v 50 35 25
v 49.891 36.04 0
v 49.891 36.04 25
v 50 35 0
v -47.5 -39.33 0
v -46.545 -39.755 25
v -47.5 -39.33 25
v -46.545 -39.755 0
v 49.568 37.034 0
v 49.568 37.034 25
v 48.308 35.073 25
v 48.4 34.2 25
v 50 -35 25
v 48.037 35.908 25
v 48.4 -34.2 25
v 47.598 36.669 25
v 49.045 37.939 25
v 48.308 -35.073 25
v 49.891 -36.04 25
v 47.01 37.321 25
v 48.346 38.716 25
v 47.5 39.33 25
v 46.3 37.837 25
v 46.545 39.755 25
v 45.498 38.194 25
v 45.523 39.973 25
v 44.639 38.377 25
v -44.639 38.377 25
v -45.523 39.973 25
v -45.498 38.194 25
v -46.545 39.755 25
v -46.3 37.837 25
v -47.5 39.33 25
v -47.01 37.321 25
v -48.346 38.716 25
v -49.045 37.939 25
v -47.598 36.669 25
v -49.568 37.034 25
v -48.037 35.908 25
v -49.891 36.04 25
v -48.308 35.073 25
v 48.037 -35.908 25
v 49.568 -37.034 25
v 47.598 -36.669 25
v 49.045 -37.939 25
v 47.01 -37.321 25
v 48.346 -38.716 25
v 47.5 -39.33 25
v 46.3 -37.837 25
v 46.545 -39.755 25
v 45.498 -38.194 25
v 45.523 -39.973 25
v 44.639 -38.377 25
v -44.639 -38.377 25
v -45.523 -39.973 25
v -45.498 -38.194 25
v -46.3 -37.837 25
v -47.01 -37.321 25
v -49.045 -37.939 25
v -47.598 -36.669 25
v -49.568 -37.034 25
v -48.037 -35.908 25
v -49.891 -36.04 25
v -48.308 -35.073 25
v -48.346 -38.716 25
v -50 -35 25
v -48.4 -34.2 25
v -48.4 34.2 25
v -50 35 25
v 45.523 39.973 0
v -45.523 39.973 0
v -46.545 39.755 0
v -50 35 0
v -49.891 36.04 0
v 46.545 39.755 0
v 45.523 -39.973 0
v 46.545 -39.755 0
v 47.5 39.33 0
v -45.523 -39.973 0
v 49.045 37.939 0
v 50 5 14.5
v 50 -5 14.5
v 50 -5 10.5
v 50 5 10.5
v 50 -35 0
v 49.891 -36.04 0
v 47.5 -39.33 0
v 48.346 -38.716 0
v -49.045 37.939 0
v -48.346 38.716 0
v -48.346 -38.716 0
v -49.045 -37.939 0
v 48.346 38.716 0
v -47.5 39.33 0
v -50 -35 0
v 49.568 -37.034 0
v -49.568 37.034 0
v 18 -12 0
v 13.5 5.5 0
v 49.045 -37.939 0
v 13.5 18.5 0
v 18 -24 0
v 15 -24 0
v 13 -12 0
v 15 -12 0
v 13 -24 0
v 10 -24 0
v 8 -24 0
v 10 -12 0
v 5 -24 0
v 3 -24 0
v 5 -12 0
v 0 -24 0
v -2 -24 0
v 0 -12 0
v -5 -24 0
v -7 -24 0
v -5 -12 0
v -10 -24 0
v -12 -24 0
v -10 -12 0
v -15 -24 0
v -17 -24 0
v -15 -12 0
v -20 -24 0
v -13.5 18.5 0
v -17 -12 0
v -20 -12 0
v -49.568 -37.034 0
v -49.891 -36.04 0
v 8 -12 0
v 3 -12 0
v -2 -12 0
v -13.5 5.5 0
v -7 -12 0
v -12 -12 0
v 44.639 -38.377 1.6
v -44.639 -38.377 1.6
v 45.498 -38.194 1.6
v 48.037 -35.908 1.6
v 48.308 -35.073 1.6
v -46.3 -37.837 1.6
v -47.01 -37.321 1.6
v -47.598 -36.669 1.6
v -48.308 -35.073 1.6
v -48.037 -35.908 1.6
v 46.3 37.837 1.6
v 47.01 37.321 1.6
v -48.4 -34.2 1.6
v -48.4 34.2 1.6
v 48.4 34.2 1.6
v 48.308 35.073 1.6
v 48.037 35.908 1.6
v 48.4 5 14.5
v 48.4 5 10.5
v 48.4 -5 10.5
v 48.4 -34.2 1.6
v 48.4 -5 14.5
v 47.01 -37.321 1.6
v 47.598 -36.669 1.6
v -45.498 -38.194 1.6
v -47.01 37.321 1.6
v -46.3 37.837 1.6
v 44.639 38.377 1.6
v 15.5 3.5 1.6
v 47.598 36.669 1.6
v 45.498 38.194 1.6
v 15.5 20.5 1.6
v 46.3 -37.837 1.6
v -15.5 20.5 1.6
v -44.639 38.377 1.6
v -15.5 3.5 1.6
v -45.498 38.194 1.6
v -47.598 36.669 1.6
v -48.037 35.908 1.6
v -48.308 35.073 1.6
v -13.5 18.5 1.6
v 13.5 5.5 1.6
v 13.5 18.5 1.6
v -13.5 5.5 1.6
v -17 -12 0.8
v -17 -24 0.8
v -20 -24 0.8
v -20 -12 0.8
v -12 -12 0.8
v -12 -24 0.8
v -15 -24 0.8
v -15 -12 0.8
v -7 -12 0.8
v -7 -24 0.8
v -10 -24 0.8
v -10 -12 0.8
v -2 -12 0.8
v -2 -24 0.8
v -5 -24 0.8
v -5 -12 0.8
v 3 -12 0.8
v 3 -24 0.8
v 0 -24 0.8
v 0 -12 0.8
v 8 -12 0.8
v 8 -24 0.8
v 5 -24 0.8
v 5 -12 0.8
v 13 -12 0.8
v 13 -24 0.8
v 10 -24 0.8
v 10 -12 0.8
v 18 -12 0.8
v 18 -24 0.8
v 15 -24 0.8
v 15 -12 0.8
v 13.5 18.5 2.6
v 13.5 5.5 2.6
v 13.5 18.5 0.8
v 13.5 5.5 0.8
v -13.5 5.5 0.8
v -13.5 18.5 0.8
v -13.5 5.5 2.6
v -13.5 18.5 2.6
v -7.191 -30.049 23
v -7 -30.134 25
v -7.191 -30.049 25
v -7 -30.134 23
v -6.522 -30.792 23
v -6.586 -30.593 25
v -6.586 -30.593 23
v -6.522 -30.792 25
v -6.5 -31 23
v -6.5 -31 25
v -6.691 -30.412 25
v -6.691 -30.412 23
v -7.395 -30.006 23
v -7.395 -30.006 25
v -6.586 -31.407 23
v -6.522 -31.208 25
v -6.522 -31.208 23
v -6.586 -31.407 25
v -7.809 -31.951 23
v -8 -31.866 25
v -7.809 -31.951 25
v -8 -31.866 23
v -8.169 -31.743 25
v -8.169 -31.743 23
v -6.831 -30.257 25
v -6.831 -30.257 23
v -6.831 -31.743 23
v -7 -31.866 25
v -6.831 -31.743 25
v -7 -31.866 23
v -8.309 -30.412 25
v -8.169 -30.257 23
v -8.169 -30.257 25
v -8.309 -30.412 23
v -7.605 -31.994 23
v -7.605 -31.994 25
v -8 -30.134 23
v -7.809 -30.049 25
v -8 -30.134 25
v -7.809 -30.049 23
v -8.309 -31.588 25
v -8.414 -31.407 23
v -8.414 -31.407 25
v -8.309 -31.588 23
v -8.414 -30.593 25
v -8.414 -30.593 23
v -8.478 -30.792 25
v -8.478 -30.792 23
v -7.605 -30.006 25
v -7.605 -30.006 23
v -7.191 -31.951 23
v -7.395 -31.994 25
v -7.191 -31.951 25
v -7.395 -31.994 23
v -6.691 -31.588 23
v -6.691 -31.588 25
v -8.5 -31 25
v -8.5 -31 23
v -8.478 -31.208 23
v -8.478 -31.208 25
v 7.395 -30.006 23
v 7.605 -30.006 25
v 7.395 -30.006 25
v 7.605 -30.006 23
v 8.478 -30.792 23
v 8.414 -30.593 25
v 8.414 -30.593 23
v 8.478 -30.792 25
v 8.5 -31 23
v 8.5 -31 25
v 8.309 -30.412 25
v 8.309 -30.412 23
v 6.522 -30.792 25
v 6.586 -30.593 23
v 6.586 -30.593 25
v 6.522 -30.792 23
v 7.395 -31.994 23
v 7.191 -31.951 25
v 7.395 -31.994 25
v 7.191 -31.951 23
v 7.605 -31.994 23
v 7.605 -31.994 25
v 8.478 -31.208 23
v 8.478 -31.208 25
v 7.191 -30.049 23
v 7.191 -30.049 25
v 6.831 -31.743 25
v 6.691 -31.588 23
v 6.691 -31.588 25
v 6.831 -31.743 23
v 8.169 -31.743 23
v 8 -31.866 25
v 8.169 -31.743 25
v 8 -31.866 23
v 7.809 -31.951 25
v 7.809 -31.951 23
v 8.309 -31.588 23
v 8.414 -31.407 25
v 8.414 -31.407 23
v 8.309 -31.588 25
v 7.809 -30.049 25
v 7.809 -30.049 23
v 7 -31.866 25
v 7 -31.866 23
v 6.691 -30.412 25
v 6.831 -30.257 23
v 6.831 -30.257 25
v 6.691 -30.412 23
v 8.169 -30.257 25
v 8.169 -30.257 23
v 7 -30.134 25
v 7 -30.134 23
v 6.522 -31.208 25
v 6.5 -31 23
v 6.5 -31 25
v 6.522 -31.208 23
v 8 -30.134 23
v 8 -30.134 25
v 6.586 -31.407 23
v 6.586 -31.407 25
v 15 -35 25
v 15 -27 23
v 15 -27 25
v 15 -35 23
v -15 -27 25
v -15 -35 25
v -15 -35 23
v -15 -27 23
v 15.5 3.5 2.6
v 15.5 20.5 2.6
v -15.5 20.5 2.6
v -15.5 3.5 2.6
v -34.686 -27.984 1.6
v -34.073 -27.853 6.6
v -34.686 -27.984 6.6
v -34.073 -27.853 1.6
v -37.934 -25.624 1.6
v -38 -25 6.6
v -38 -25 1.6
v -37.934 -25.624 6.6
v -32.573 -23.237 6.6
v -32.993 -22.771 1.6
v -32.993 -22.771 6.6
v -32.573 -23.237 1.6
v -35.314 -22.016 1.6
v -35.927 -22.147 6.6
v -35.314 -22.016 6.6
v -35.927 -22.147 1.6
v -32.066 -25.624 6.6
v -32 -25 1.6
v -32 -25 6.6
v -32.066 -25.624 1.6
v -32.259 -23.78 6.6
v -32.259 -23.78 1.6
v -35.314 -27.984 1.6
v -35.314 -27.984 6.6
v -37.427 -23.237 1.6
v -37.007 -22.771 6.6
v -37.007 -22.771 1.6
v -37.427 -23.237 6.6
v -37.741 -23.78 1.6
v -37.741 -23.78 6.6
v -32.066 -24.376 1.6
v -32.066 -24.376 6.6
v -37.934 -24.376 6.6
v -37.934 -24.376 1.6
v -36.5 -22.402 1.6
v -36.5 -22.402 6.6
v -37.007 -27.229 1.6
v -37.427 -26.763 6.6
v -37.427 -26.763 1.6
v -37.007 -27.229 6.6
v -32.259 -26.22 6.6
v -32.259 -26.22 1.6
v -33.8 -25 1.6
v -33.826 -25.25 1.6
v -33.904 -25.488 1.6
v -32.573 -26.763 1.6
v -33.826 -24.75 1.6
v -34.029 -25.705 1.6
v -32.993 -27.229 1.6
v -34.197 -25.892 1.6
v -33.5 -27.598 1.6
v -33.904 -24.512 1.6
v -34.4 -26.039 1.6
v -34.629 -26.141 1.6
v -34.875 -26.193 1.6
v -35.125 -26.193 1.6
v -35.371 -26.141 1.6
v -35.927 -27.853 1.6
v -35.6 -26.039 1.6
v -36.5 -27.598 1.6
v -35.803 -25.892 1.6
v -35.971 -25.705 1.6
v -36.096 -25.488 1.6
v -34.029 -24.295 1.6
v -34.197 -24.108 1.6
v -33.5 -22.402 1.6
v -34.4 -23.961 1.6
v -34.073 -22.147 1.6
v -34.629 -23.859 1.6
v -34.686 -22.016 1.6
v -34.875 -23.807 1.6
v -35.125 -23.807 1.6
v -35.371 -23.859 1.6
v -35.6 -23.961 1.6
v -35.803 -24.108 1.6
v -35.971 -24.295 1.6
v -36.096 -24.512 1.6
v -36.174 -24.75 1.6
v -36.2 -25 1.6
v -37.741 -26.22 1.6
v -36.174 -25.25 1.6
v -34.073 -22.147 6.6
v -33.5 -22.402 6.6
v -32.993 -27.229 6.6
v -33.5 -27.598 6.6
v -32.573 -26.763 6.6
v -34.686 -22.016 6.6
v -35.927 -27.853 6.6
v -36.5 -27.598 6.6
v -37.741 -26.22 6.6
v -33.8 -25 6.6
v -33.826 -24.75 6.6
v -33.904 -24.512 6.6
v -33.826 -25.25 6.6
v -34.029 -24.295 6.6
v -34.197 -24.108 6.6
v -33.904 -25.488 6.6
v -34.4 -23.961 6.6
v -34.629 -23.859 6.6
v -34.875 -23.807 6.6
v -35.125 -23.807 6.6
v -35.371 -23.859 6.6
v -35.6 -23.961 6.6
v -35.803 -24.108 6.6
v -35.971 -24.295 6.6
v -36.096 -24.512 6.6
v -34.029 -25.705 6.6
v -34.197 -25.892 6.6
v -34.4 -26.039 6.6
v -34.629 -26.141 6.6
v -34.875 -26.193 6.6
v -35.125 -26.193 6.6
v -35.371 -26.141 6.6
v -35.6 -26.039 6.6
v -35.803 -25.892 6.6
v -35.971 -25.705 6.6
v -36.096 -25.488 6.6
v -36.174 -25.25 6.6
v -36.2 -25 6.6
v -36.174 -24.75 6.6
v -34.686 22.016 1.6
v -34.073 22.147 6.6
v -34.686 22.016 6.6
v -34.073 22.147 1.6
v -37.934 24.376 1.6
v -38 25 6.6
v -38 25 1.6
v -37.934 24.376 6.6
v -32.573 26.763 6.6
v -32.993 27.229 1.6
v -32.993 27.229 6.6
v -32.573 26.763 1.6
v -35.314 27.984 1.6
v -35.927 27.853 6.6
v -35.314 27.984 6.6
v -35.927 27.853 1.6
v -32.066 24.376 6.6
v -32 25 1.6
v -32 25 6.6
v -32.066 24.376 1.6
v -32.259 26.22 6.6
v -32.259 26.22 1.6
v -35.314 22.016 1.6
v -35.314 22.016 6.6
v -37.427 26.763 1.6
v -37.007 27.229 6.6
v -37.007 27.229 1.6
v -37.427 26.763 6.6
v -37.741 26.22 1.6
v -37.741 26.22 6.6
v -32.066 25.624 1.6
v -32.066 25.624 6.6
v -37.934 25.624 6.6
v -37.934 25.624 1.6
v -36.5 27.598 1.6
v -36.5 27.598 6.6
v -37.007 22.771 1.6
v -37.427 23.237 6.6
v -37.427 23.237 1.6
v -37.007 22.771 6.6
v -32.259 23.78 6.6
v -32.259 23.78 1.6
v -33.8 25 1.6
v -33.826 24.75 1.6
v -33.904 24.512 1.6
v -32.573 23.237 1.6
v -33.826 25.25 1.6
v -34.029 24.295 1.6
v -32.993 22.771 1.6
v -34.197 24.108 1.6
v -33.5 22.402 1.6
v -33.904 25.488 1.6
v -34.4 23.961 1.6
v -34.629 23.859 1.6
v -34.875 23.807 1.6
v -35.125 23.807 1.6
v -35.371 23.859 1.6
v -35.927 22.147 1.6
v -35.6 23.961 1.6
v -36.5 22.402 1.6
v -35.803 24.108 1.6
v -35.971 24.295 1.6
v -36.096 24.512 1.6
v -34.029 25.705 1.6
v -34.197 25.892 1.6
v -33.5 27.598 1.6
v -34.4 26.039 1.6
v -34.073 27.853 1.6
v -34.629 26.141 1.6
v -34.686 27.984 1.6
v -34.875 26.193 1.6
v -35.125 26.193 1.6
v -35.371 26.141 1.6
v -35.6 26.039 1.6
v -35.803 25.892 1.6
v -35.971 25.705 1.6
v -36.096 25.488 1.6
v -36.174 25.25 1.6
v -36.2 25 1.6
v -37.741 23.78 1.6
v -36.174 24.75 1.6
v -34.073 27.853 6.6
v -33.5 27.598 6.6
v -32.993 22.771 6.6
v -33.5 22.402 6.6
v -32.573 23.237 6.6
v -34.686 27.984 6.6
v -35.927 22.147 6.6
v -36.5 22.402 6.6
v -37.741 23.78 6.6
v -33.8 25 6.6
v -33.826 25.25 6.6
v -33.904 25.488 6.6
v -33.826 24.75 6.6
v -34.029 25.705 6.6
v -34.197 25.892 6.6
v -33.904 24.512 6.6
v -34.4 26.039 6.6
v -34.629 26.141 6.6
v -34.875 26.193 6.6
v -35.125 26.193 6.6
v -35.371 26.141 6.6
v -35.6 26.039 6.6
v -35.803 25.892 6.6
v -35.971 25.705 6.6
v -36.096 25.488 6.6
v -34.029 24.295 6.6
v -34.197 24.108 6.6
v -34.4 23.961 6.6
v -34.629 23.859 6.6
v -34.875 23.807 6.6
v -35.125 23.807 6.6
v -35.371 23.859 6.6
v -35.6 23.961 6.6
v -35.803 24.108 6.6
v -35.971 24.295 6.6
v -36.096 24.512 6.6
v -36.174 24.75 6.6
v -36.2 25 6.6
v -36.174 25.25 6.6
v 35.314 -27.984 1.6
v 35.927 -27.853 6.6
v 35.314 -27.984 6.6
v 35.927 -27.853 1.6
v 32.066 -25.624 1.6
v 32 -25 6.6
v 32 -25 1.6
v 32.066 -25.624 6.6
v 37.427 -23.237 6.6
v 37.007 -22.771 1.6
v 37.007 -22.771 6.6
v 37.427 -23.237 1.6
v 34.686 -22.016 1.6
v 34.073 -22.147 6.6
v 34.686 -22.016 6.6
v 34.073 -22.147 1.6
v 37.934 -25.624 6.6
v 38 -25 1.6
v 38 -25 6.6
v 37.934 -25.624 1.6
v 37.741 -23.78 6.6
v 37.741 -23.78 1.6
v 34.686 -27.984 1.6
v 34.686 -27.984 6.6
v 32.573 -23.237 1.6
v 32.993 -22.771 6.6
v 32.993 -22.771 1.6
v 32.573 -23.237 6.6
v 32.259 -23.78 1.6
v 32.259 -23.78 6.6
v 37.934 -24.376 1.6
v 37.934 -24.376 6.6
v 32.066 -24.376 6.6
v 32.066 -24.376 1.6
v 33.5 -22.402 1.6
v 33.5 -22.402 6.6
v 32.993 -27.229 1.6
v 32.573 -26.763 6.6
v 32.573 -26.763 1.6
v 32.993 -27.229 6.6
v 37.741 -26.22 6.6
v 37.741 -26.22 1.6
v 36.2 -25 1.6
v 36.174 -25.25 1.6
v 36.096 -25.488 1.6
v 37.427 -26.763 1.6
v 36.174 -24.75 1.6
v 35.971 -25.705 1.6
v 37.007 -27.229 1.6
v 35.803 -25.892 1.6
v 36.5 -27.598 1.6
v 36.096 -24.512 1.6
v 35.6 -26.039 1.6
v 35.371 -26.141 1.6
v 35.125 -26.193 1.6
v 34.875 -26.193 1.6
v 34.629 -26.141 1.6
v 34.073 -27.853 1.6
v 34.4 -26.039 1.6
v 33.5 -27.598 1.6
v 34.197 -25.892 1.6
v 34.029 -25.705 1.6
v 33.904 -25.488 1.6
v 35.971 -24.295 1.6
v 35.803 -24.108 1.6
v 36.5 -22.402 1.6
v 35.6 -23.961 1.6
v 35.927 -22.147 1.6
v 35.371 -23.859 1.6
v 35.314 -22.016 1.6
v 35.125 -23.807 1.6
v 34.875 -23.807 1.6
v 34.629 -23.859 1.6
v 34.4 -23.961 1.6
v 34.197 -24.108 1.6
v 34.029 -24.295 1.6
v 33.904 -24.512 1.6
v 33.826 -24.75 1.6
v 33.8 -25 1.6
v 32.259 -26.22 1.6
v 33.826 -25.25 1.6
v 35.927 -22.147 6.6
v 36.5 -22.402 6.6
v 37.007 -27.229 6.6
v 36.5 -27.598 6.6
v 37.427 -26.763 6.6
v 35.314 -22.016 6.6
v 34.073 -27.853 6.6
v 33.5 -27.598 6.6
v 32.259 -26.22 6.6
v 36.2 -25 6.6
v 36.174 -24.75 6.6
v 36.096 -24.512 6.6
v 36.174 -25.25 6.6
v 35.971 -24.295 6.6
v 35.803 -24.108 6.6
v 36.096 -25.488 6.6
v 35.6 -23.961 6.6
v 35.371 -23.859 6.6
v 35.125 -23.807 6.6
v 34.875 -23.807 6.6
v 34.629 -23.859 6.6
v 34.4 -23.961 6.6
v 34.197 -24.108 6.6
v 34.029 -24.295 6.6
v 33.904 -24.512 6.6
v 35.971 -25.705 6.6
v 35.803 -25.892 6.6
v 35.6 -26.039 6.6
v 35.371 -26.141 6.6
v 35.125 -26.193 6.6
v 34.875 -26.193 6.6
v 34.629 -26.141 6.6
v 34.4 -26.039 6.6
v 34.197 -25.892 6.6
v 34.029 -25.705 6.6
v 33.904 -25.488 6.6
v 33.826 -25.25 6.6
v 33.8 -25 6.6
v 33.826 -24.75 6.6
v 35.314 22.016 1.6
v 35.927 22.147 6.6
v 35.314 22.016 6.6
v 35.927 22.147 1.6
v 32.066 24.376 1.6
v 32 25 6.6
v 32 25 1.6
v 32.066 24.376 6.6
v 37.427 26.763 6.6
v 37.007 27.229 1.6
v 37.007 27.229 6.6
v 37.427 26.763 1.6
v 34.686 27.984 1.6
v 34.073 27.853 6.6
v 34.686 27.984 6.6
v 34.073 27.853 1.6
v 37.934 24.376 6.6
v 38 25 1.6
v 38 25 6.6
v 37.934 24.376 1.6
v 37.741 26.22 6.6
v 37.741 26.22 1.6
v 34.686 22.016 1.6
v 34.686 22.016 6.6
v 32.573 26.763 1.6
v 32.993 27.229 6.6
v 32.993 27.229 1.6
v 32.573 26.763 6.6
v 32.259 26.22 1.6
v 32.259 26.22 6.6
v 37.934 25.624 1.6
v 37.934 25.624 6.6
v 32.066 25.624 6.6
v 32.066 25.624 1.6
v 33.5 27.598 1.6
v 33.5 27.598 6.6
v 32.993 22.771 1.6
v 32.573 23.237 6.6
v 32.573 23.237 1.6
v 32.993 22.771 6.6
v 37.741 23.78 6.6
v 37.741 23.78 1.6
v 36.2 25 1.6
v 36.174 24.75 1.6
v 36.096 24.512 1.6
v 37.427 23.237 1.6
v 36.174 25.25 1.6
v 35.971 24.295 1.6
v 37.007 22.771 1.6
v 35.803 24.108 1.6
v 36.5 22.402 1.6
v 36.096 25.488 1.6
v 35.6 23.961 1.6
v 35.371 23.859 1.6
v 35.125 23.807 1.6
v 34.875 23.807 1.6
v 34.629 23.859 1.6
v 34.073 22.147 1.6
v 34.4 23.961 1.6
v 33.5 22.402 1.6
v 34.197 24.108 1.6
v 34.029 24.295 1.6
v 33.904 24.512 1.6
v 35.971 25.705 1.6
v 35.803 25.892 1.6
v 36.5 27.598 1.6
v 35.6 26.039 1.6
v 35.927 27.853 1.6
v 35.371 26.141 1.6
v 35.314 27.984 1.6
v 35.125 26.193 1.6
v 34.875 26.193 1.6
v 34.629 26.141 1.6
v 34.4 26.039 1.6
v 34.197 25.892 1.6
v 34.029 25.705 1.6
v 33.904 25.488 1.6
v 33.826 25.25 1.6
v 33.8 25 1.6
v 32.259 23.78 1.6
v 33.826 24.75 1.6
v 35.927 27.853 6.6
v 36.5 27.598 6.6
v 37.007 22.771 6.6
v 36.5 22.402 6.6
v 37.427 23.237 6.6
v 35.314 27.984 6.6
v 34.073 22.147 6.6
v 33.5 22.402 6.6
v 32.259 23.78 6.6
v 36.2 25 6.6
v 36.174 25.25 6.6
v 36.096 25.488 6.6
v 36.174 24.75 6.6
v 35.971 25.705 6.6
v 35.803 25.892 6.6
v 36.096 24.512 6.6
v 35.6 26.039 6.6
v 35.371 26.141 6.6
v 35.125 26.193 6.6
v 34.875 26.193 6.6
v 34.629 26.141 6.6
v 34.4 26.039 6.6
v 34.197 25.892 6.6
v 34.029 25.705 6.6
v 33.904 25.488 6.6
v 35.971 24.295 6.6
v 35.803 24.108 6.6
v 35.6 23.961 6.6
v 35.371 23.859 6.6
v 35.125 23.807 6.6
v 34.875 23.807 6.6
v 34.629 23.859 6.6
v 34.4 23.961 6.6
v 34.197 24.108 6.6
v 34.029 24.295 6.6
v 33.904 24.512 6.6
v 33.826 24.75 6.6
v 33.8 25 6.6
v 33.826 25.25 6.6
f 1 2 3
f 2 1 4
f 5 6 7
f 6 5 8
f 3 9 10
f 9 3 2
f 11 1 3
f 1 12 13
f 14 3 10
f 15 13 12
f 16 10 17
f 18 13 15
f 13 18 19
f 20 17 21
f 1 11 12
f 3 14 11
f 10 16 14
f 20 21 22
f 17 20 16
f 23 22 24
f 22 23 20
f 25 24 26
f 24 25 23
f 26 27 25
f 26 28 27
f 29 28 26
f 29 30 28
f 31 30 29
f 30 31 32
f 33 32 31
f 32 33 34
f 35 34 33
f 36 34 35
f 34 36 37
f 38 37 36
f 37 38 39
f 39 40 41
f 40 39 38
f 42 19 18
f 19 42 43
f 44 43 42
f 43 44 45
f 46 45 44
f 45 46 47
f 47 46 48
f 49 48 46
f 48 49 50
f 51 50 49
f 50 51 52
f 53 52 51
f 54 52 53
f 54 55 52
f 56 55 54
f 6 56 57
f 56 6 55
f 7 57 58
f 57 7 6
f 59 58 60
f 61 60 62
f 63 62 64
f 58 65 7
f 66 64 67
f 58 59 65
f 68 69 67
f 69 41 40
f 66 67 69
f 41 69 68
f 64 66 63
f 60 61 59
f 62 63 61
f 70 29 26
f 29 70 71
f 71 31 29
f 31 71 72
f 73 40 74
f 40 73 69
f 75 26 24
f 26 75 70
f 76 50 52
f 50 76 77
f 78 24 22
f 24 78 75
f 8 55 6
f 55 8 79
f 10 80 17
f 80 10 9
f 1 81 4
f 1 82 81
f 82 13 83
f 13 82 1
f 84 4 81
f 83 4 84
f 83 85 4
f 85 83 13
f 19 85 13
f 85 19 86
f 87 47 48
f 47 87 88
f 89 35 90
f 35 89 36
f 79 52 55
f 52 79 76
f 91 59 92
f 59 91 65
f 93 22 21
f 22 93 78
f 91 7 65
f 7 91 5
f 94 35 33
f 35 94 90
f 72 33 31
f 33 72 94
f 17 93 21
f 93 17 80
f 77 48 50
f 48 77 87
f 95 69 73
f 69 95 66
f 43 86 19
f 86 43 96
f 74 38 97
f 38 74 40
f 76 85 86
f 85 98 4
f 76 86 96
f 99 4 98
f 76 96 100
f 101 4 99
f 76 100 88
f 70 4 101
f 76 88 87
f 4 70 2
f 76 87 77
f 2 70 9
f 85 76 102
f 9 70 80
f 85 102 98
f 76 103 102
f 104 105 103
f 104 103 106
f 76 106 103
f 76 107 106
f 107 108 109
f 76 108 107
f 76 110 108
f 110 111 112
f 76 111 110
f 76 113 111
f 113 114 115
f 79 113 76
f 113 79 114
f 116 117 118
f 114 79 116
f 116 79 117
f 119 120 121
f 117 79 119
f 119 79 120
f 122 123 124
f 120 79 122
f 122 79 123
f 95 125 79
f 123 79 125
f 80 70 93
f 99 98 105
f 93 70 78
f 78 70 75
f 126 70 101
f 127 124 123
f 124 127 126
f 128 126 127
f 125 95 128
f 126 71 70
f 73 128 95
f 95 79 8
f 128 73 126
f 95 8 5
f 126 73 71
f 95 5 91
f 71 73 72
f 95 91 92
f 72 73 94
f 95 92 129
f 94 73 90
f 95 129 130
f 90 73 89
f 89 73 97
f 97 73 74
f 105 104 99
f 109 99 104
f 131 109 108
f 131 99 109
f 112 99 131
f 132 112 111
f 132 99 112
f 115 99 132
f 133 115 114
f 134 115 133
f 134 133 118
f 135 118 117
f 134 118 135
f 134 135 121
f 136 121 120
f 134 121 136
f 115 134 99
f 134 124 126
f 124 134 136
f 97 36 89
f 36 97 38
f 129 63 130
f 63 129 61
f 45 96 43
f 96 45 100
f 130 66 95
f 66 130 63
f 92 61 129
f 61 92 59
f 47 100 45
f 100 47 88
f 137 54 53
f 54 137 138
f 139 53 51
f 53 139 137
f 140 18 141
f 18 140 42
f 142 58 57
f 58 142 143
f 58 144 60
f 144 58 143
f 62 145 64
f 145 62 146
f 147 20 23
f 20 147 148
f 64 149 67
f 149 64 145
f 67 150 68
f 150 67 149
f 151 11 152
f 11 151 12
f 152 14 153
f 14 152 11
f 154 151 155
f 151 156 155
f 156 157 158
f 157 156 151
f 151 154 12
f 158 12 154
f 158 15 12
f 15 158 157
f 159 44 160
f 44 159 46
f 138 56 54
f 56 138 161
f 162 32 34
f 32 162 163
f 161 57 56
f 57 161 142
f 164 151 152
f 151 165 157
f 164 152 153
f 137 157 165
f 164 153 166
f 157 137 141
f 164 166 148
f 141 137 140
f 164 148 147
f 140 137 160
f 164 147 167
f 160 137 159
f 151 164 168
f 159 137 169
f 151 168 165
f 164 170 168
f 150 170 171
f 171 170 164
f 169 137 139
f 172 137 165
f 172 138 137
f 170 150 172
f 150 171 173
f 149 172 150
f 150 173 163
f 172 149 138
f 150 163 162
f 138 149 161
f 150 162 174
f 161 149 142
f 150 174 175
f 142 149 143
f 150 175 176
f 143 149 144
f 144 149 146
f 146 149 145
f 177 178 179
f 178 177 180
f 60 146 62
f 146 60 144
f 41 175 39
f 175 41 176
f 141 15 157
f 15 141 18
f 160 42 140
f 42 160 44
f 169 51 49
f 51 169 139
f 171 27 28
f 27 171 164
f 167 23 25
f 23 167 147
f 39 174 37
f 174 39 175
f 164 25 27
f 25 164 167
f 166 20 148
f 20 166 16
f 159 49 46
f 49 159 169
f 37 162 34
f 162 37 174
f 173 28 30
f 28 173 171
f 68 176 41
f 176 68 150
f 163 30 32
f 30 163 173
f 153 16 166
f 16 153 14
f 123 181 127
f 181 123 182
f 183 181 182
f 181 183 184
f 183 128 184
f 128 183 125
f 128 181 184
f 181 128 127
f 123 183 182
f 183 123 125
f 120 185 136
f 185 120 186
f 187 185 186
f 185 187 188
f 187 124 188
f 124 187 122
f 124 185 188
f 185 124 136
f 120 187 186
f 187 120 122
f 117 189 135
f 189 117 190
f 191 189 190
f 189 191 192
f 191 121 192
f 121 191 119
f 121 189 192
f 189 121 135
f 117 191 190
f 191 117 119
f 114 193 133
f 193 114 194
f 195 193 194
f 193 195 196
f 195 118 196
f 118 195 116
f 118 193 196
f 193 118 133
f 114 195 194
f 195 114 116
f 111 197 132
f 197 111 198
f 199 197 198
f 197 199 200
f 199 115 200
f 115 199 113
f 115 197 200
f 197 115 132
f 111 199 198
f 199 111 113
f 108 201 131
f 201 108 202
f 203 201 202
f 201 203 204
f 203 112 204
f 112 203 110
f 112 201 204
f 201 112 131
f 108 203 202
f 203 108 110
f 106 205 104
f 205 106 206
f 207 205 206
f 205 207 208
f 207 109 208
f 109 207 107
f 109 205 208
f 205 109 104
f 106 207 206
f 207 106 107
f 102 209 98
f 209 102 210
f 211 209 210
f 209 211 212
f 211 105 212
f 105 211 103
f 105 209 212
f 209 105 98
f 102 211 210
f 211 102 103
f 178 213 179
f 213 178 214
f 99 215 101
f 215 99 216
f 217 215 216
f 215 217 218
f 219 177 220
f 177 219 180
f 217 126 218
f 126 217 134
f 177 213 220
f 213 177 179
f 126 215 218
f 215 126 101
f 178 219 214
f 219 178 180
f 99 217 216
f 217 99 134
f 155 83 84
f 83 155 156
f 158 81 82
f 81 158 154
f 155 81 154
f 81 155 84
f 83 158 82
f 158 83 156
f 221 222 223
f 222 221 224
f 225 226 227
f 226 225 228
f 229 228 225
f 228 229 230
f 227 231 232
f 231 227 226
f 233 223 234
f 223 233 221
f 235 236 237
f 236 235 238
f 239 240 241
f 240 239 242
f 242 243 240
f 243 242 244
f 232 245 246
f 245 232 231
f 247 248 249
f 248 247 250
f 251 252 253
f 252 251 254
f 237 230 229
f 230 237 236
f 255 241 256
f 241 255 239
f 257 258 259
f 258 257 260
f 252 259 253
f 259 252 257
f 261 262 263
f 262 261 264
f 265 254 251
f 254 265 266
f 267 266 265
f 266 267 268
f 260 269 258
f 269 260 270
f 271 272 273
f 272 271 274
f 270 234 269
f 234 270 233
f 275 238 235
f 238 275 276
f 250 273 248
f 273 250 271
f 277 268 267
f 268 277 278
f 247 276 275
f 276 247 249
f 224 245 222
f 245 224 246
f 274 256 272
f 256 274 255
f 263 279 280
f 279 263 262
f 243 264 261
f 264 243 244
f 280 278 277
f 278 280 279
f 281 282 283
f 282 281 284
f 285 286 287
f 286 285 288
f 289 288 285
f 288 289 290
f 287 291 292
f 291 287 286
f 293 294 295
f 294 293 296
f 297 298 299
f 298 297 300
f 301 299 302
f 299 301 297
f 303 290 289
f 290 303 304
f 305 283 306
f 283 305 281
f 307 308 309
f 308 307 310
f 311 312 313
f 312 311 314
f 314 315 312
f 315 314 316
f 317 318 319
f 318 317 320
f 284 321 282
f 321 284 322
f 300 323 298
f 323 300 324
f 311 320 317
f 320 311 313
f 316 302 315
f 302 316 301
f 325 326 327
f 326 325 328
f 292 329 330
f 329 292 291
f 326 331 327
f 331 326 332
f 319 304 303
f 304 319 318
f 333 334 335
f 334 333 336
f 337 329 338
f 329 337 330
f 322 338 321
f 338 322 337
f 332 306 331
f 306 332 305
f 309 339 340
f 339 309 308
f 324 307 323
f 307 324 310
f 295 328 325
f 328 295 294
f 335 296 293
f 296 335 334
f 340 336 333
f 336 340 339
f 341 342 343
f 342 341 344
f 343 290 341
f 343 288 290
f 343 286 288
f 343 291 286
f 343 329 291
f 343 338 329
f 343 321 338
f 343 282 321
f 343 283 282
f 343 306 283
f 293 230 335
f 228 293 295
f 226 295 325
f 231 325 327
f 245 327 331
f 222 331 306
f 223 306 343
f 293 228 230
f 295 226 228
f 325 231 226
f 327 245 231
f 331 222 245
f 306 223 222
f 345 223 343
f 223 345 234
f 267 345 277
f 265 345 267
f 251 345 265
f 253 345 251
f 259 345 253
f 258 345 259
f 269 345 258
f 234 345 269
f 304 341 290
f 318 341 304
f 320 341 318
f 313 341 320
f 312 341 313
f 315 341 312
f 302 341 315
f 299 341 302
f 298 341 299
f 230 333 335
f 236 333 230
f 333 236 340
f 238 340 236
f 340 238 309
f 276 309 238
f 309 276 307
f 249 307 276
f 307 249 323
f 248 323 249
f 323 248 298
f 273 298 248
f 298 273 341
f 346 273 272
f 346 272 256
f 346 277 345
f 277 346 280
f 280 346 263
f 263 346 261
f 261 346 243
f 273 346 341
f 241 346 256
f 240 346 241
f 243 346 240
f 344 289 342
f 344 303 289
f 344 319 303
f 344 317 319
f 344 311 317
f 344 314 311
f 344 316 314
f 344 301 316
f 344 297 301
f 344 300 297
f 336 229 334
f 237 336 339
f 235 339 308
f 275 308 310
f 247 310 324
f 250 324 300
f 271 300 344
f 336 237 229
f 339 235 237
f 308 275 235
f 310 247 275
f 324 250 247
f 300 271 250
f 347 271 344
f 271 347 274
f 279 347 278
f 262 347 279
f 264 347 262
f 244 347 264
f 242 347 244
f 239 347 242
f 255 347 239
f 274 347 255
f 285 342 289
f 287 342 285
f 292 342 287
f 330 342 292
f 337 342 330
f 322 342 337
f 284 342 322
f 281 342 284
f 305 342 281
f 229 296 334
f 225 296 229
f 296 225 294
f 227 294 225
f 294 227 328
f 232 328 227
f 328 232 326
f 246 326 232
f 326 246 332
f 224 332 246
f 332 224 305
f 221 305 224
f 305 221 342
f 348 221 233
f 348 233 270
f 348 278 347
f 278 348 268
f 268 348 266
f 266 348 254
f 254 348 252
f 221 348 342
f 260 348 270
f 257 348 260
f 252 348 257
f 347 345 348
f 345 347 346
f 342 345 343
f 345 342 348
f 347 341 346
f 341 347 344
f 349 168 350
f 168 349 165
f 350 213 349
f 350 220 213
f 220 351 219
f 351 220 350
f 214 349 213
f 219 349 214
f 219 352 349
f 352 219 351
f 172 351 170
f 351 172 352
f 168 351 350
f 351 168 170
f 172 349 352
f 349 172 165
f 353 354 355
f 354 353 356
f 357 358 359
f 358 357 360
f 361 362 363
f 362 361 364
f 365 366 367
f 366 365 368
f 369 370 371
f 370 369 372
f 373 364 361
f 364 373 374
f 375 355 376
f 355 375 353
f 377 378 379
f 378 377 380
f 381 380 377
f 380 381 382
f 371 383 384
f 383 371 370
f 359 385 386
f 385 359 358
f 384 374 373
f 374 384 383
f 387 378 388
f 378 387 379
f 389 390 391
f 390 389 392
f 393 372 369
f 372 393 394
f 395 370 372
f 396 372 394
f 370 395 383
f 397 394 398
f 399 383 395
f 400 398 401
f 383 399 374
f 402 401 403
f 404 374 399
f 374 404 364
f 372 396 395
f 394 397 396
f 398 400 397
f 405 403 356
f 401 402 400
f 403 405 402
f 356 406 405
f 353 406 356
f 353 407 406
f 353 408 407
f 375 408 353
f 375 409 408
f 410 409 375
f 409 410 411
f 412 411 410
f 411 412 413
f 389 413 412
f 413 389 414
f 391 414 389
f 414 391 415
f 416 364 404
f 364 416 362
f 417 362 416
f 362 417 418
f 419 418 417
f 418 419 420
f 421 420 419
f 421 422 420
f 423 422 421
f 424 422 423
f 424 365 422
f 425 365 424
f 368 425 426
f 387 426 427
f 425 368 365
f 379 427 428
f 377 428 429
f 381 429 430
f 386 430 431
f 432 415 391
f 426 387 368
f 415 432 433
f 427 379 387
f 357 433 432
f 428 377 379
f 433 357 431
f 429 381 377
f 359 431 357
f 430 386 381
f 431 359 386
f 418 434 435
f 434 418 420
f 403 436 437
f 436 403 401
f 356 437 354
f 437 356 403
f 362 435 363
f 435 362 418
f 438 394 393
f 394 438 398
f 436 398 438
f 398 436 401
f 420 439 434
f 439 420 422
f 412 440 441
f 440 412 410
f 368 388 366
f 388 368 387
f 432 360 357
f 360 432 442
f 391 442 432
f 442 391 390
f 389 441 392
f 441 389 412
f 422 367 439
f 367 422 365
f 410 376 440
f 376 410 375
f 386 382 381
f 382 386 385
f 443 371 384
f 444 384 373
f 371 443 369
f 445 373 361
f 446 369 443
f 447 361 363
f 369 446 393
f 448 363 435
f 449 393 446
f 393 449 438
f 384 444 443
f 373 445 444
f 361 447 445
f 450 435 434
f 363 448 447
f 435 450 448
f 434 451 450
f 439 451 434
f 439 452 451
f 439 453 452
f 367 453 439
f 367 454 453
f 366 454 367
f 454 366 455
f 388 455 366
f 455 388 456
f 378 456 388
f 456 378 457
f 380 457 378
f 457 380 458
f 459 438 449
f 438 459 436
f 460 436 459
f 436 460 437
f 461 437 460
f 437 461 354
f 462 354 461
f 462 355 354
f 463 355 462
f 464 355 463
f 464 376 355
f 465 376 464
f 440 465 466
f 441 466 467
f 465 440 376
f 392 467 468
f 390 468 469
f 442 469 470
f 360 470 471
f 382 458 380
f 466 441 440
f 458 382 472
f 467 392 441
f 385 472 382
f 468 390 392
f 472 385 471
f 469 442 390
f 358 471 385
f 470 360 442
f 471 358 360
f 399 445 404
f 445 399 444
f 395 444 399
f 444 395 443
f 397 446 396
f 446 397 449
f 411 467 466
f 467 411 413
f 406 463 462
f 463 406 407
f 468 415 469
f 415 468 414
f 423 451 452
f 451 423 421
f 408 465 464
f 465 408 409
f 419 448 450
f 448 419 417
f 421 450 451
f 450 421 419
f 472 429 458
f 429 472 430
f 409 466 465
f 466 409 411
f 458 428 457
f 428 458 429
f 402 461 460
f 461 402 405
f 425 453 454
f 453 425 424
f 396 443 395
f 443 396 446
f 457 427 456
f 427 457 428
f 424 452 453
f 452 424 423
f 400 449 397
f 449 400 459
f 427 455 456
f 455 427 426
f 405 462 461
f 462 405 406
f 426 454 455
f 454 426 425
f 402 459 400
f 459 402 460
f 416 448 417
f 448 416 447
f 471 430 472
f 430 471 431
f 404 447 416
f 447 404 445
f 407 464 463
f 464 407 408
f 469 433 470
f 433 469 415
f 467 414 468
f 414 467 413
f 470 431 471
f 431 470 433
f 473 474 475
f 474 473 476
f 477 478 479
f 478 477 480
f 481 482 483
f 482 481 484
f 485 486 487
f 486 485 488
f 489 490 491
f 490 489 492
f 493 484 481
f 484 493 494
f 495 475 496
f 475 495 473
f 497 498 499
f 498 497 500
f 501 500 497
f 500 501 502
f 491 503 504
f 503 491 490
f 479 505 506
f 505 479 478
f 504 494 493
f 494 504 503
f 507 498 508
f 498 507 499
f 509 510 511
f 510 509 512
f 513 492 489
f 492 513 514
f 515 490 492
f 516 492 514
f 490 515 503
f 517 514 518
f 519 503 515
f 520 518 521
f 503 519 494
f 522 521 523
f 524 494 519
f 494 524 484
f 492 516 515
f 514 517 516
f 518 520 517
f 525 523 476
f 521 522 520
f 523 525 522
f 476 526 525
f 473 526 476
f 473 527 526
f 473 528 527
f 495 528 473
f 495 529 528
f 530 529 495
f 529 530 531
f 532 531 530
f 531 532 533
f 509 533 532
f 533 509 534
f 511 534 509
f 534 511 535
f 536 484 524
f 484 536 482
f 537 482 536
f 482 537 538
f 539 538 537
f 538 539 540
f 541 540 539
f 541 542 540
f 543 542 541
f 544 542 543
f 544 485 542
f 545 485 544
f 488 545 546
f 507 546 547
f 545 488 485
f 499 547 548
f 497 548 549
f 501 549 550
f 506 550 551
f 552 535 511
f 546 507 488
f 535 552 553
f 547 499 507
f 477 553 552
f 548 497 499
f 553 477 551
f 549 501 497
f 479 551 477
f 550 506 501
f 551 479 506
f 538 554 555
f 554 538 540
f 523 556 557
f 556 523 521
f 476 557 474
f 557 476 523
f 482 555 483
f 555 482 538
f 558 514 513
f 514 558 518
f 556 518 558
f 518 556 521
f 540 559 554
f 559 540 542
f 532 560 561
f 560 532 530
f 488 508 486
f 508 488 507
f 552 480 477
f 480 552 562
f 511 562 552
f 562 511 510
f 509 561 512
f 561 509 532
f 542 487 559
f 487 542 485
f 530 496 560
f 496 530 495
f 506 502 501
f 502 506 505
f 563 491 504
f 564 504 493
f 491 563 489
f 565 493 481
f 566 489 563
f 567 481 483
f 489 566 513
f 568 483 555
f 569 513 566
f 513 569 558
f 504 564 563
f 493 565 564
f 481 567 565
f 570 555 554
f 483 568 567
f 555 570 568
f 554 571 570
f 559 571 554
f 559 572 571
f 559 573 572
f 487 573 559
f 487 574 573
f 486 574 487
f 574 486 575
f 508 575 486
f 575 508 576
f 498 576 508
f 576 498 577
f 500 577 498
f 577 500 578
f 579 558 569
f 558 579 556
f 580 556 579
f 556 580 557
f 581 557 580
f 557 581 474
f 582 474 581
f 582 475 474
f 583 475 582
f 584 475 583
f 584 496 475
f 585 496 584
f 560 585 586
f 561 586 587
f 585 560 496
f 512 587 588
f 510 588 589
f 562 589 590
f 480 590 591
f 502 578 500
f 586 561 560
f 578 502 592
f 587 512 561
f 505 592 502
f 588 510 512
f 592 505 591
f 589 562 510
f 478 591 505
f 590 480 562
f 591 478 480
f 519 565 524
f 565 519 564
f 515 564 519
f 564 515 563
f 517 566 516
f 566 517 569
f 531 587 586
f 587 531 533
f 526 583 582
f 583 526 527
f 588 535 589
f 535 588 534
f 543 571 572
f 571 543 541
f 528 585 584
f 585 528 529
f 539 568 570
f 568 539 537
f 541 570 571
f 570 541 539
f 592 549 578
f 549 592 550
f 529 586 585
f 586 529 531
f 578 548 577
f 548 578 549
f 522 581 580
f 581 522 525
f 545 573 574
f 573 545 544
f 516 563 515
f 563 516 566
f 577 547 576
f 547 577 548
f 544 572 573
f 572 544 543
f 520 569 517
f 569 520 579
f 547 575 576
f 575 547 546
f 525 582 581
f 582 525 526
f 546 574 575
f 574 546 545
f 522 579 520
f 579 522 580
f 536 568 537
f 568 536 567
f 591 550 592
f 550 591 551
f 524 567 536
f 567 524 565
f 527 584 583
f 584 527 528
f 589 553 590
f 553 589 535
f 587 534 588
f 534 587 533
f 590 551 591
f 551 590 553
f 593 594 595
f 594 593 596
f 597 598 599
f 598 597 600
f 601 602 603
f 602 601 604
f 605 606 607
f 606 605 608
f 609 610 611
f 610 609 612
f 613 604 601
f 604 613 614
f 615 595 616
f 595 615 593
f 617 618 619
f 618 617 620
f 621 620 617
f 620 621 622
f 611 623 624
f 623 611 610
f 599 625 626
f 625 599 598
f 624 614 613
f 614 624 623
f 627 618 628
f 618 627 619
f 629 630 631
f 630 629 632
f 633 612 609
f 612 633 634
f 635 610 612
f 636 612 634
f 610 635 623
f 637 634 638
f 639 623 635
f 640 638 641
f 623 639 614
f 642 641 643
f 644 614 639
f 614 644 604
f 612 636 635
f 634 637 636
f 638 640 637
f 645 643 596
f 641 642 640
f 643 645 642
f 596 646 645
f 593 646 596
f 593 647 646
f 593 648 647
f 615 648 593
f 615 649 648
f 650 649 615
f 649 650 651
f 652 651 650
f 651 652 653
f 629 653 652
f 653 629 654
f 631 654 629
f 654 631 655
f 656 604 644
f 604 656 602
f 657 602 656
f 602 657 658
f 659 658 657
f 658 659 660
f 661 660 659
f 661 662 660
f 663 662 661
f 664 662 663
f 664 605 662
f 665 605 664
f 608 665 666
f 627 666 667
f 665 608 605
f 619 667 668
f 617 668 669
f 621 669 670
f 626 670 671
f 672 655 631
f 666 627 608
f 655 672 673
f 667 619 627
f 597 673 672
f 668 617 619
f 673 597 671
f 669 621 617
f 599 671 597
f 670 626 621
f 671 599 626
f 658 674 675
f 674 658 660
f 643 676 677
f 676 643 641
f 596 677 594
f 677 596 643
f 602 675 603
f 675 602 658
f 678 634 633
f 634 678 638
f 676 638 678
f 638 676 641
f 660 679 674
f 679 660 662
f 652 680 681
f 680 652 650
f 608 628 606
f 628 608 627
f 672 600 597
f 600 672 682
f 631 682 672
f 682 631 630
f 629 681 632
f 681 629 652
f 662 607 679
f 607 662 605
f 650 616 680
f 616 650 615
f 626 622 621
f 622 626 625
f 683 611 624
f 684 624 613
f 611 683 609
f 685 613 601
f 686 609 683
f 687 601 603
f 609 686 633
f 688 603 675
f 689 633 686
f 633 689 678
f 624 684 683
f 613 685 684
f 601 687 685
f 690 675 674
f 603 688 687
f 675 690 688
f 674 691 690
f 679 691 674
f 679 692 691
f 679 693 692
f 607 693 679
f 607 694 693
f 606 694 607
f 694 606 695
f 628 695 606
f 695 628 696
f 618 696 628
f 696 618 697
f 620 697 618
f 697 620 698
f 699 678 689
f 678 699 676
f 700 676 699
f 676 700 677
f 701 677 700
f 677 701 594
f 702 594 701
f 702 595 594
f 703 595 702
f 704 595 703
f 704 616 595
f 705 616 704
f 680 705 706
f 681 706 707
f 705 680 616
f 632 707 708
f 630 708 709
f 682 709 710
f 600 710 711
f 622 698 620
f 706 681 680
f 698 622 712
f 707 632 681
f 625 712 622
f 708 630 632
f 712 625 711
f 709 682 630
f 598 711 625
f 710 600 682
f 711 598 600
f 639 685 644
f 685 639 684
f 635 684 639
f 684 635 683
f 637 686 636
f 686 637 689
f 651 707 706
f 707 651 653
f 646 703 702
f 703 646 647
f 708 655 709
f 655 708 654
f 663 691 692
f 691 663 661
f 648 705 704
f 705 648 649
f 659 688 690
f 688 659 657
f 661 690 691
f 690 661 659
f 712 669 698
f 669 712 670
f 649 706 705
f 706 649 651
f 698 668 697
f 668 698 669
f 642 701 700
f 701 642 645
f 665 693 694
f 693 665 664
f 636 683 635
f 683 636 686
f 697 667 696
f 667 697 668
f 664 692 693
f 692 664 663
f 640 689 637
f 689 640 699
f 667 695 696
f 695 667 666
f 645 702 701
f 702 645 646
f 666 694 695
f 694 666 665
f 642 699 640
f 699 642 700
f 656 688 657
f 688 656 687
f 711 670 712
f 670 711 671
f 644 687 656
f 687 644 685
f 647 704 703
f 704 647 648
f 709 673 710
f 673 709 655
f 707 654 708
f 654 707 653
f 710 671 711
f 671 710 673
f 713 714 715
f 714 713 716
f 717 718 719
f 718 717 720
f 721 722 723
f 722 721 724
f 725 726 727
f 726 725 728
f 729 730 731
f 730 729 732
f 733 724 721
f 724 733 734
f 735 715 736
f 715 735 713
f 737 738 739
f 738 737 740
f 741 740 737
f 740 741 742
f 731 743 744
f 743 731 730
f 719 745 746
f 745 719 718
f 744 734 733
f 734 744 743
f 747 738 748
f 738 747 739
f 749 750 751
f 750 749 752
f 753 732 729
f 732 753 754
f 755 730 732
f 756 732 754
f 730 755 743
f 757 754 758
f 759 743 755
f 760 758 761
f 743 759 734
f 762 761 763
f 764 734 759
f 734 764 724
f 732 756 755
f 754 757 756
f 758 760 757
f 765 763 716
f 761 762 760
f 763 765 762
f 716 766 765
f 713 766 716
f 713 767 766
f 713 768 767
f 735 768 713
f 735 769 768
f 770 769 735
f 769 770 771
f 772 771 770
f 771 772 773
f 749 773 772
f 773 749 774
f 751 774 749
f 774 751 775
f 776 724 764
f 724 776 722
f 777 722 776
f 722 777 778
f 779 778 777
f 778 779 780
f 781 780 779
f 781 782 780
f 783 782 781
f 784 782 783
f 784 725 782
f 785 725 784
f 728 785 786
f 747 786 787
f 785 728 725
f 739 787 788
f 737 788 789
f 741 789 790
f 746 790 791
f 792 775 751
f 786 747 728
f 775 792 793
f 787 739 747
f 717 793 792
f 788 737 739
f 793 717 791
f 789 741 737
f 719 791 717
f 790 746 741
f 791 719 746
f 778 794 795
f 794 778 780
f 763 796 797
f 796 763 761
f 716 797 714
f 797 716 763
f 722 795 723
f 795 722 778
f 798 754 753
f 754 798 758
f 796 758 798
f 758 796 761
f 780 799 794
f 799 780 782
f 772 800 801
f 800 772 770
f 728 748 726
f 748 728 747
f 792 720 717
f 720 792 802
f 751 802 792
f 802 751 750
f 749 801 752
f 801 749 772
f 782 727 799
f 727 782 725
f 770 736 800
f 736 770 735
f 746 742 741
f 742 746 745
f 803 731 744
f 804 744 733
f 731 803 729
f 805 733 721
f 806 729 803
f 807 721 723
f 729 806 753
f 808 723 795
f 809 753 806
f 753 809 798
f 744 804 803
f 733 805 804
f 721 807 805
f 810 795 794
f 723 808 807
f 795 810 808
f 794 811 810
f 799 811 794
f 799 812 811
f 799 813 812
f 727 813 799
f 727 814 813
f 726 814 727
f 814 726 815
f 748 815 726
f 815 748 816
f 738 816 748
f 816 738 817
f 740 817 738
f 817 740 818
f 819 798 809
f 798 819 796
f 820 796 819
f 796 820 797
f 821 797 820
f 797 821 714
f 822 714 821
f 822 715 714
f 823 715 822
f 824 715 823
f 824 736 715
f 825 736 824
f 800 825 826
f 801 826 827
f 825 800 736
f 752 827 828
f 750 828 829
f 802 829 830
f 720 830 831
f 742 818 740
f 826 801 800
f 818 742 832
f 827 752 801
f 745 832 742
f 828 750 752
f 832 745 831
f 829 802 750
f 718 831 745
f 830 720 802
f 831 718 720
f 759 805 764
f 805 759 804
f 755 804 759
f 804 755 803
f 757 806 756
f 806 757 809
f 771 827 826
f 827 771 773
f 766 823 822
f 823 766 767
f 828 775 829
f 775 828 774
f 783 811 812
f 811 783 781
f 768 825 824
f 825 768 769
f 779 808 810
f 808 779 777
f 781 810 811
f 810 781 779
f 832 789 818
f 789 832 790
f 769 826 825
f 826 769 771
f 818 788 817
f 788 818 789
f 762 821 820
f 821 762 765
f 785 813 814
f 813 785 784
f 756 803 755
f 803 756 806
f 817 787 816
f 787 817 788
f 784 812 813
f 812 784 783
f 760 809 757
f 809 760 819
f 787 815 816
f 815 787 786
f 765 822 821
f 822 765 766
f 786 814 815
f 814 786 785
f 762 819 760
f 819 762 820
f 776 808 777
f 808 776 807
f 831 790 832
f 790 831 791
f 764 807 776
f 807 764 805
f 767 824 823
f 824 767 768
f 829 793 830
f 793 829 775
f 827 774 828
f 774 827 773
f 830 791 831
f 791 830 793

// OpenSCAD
// Environment Sentinel — 环境哨兵外壳
// RealWorldClaw Reference Design #3
// 100×80×25mm 圆角方形，墙挂/桌面两用

$fn = 30;

// === 主要尺寸 ===
body_w = 100;
body_h = 80;
body_d = 25;
wall = 1.6;
corner_r = 5;

// === OLED 窗口 ===
oled_w = 27;    // 0.96" OLED visible area
oled_h = 13;
oled_x = 0;
oled_y = 12;    // 偏上

// === 通风格栅 ===
grille_w = 40;
grille_h = 12;
grille_y = -18;  // 偏下
slot_w = 3;
slot_gap = 2;

// === USB-C 口 ===
usbc_w = 10;
usbc_h = 4;

// === 墙挂钥匙孔 ===
keyhole_big_r = 4;
keyhole_small_r = 2;
keyhole_len = 8;

// === 可折叠支架 ===
stand_w = 30;
stand_h = 50;
stand_t = 2;

// --- 圆角方块 ---
module rounded_box(w, h, d, r) {
    hull() {
        for (x = [-w/2+r, w/2-r])
            for (y = [-h/2+r, h/2-r])
                translate([x, y, 0])
                    cylinder(r=r, h=d);
    }
}

// --- 钥匙孔 ---
module keyhole() {
    // 大圆
    cylinder(r=keyhole_big_r, h=wall+1);
    // 槽
    translate([0, keyhole_len/2, 0])
        cylinder(r=keyhole_small_r, h=wall+1);
    translate([-keyhole_small_r, 0, 0])
        cube([keyhole_small_r*2, keyhole_len/2, wall+1]);
}

// --- 通风格栅 ---
module grille() {
    n = floor(grille_w / (slot_w + slot_gap));
    for (i = [0:n-1]) {
        translate([
            -grille_w/2 + i*(slot_w+slot_gap) + slot_w/2,
            0, 0
        ])
            cube([slot_w, grille_h, wall+1], center=true);
    }
}

// --- 主体 ---
module body_shell() {
    difference() {
        // 外壳
        rounded_box(body_w, body_h, body_d, corner_r);
        // 内腔
        translate([0, 0, wall])
            rounded_box(body_w - wall*2, body_h - wall*2, body_d, corner_r - wall/2);
    }
}

// --- 完整外壳 ---
module enclosure() {
    difference() {
        body_shell();

        // OLED 窗口（正面）
        translate([oled_x, oled_y, -0.5])
            cube([oled_w, oled_h, wall+1], center=true);

        // 通风格栅（正面）
        translate([0, grille_y, -0.5])
            grille();

        // USB-C 口（右侧面）
        translate([body_w/2 - wall/2, 0, body_d/2])
            rotate([0, 90, 0])
                cube([usbc_h, usbc_w, wall+1], center=true);

        // 墙挂钥匙孔（背面，上部）
        translate([0, 20, body_d - wall - 0.5])
            keyhole();
    }

    // 可折叠支架（背面，铰链连接，展示为折叠状态）
    translate([0, -body_h/2 + 5, body_d - stand_t])
        difference() {
            // 支架板
            translate([-stand_w/2, 0, 0])
                cube([stand_w, 8, stand_t]);
            // 铰链孔
            for (x = [-stand_w/4, stand_w/4])
                translate([x, 4, -0.5])
                    cylinder(r=1, h=stand_t+1);
        }

    // OLED 边框（内侧加强）
    translate([0, oled_y, wall])
        difference() {
            cube([oled_w+4, oled_h+4, 2], center=true);
            cube([oled_w, oled_h, 3], center=true);
        }

    // 模块安装柱（4个角）
    for (x = [-35, 35])
        for (y = [-25, 25])
            translate([x, y, wall])
                difference() {
                    cylinder(r=3, h=5);
                    cylinder(r=1.2, h=5.1);
                }
}

enclosure();
